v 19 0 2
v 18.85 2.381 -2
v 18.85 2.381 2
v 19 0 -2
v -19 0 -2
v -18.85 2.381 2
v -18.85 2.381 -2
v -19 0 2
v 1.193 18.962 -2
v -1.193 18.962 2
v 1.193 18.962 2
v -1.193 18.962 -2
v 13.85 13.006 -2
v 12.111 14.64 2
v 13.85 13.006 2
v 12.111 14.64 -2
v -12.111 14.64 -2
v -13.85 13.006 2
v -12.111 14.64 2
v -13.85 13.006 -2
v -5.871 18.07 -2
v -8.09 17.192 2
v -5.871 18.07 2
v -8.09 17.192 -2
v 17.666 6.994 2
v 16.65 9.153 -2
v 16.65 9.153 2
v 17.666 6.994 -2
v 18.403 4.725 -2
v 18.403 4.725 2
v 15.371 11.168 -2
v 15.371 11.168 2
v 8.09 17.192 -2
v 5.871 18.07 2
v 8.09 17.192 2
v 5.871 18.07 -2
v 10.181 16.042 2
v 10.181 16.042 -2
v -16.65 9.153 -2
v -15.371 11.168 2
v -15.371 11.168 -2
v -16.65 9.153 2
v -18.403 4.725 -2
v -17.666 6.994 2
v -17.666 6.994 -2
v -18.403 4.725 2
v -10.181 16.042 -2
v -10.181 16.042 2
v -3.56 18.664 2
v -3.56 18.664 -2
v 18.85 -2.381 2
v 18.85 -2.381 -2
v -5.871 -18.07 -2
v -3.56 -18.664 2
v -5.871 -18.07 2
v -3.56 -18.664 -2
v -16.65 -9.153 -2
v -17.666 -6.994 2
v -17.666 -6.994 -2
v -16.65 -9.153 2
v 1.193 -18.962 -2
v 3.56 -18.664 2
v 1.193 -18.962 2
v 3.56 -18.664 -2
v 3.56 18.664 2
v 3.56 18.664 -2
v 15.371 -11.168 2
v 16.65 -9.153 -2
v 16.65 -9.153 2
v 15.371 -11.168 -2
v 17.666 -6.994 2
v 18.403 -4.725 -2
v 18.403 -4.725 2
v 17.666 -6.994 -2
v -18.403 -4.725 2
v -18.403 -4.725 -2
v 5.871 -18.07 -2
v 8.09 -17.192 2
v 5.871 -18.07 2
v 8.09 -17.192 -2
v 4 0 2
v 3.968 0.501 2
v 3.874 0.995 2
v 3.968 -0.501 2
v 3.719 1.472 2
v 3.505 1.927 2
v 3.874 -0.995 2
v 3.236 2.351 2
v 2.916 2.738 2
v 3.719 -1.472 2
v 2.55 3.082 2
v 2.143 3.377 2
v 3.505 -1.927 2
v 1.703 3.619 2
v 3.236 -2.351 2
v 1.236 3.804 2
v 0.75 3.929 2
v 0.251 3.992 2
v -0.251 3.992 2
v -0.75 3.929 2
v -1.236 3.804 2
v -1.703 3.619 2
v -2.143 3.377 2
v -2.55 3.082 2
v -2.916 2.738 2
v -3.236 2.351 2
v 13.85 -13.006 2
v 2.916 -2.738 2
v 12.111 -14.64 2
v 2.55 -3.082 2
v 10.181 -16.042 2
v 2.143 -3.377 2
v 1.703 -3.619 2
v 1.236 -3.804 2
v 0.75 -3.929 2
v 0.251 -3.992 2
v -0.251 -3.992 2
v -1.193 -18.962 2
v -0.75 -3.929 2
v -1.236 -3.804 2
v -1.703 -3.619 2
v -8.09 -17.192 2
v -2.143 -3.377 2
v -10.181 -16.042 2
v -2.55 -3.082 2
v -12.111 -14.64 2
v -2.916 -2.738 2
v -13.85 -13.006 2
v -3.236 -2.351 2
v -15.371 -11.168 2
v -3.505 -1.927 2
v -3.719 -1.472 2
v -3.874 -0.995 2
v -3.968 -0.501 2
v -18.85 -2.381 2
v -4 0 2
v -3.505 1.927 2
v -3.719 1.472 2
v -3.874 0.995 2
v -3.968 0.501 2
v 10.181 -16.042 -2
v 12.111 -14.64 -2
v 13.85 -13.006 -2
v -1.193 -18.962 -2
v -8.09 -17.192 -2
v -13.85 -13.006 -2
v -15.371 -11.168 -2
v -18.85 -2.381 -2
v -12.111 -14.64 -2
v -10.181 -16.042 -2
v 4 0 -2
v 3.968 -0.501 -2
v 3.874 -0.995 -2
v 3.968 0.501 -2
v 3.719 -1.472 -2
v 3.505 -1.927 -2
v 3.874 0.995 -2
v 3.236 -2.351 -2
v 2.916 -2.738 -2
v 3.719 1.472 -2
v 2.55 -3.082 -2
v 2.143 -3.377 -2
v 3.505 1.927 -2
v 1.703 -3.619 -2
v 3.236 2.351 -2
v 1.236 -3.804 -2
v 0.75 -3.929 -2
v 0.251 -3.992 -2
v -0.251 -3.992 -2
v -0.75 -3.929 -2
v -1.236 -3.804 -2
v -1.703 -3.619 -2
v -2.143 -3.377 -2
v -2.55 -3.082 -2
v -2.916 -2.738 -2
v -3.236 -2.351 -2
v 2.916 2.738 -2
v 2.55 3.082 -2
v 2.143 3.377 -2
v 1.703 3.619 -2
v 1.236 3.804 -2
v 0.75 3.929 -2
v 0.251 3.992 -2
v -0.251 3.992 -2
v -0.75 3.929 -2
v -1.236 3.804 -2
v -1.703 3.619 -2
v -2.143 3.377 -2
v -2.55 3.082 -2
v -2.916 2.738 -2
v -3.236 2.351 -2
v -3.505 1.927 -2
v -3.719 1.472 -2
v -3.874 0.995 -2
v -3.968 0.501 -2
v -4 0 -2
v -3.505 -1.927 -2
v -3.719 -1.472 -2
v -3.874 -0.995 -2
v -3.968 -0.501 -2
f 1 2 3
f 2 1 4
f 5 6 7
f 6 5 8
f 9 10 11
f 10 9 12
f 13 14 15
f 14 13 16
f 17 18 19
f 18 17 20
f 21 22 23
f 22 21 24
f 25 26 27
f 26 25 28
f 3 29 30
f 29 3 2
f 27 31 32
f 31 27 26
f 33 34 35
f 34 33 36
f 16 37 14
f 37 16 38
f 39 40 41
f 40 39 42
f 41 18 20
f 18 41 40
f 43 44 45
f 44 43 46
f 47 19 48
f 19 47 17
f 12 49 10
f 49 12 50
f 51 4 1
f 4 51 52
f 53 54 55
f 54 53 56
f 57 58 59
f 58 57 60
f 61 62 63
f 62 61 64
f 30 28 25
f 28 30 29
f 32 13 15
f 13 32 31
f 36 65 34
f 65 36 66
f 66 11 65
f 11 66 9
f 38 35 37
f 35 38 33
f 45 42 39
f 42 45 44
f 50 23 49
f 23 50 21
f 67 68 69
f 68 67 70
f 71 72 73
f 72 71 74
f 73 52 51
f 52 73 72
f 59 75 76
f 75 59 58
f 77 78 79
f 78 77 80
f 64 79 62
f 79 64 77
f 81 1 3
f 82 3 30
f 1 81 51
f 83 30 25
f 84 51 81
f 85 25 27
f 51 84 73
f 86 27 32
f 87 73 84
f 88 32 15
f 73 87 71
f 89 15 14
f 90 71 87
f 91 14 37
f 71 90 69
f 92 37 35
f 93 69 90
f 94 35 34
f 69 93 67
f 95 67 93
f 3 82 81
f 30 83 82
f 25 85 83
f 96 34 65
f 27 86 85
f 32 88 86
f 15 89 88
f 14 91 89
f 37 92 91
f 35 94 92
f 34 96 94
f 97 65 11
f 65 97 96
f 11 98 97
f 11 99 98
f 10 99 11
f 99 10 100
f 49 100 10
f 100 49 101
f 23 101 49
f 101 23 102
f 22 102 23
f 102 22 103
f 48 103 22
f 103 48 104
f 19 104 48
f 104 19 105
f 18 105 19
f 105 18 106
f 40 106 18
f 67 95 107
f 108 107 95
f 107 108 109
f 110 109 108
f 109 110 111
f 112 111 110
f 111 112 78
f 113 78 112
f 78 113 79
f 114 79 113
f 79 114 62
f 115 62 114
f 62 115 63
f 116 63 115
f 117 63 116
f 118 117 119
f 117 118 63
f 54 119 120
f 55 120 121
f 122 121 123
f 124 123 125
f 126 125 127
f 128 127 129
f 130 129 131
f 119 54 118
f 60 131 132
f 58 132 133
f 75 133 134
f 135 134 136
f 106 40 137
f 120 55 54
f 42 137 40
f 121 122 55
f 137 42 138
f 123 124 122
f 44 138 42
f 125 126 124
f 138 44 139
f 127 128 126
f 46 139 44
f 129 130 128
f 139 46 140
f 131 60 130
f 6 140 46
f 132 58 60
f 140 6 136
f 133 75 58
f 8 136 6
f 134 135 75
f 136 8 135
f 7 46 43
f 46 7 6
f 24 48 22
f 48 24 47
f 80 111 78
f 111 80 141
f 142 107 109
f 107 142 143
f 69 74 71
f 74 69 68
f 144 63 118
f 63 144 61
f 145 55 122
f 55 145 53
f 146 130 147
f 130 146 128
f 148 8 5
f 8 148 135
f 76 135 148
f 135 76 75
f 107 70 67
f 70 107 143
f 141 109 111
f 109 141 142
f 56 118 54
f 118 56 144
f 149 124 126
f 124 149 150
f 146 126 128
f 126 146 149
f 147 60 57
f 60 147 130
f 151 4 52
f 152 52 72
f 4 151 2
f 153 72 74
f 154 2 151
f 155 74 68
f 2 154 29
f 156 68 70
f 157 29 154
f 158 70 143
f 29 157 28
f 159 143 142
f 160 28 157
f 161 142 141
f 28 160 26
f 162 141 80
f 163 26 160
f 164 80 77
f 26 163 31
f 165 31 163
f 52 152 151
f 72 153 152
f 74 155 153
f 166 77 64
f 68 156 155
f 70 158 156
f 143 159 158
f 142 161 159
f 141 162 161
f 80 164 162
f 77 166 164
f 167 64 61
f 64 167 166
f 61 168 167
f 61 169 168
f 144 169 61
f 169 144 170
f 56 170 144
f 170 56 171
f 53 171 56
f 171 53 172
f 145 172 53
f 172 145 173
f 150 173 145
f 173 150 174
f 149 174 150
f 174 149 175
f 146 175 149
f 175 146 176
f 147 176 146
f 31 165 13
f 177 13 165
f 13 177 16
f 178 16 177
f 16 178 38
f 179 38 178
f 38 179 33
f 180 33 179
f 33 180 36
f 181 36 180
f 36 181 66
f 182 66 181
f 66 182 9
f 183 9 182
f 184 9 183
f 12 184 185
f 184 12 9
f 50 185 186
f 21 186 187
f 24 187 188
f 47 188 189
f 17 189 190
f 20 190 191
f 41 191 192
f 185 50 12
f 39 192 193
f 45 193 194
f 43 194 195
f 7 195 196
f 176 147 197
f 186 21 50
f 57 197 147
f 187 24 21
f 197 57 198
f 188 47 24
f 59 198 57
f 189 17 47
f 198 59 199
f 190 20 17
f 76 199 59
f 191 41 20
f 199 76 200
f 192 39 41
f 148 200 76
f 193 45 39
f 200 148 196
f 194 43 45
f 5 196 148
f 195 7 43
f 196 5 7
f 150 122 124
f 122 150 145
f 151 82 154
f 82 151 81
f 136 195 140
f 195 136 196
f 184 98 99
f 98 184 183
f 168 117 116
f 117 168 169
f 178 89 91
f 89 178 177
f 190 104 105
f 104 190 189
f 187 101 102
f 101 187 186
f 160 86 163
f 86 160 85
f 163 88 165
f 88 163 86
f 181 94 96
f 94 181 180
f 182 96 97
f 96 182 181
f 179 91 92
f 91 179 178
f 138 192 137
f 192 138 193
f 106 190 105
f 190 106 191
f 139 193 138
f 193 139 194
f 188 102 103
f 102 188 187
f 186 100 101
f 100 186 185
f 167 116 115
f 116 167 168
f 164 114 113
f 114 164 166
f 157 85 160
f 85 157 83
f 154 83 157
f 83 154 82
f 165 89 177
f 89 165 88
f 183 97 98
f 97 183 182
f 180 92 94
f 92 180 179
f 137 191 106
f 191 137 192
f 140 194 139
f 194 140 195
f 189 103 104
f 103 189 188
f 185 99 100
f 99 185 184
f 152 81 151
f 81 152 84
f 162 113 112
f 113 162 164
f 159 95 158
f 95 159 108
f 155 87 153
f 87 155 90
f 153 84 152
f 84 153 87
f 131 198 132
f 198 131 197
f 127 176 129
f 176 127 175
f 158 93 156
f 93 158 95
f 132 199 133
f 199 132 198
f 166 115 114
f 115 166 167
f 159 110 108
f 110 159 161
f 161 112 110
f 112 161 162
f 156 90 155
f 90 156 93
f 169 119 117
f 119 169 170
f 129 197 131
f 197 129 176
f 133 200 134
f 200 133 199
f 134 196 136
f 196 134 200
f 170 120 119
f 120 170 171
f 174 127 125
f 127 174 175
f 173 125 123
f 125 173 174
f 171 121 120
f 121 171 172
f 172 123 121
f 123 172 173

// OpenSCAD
$fn = 50;


difference() {
	union() {
		translate(v = [0, 0, -2.0000000000]) {
			cylinder(h = 4, r = 19.0000000000);
		}
	}
	union() {
		translate(v = [0, 0, -100.0000000000]) {
			cylinder(h = 200, r = 4.0000000000);
		}
	}
}
